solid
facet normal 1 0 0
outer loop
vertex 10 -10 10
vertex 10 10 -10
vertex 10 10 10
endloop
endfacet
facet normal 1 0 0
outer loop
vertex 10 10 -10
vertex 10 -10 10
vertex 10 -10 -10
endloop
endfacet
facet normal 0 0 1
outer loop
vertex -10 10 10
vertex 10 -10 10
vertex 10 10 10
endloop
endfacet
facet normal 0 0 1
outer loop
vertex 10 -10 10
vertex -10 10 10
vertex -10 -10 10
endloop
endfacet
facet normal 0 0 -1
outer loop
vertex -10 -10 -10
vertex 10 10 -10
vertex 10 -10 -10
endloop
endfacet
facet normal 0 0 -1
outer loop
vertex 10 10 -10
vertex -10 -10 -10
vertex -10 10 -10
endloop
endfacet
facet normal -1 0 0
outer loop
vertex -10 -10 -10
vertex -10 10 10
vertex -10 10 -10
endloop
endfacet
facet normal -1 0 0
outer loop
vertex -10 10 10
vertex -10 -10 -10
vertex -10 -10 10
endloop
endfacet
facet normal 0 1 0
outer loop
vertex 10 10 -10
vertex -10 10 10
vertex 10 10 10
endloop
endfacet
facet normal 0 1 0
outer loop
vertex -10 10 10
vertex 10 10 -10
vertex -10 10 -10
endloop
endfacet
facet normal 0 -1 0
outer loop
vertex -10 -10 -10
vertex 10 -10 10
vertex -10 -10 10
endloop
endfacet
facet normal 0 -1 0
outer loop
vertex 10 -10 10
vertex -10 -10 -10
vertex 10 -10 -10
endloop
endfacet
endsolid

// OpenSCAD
// Dimensions
cube_size = 20; // Size of the cube
hole_diameter = 10; // Diameter of the hole
hole_depth = 5; // Depth of the hole

// Cube with a hole in the top
translate([-cube_size/2, -cube_size/2, -cube_size/2]) {
    union() {
        // Cube
        cube(size = cube_size, center = false);
        // Hole in the top
        translate([cube_size/2, cube_size/2, cube_size - hole_depth/2])
            cylinder(h = hole_depth, d = hole_diameter, center = true);
    }
    // Subtract the hole from the cube
    difference() {
        cube(size = cube_size, center = false);
        translate([cube_size/2, cube_size/2, cube_size - hole_depth/2])
            cylinder(h = hole_depth, d = hole_diameter, center = true);
    }
}
